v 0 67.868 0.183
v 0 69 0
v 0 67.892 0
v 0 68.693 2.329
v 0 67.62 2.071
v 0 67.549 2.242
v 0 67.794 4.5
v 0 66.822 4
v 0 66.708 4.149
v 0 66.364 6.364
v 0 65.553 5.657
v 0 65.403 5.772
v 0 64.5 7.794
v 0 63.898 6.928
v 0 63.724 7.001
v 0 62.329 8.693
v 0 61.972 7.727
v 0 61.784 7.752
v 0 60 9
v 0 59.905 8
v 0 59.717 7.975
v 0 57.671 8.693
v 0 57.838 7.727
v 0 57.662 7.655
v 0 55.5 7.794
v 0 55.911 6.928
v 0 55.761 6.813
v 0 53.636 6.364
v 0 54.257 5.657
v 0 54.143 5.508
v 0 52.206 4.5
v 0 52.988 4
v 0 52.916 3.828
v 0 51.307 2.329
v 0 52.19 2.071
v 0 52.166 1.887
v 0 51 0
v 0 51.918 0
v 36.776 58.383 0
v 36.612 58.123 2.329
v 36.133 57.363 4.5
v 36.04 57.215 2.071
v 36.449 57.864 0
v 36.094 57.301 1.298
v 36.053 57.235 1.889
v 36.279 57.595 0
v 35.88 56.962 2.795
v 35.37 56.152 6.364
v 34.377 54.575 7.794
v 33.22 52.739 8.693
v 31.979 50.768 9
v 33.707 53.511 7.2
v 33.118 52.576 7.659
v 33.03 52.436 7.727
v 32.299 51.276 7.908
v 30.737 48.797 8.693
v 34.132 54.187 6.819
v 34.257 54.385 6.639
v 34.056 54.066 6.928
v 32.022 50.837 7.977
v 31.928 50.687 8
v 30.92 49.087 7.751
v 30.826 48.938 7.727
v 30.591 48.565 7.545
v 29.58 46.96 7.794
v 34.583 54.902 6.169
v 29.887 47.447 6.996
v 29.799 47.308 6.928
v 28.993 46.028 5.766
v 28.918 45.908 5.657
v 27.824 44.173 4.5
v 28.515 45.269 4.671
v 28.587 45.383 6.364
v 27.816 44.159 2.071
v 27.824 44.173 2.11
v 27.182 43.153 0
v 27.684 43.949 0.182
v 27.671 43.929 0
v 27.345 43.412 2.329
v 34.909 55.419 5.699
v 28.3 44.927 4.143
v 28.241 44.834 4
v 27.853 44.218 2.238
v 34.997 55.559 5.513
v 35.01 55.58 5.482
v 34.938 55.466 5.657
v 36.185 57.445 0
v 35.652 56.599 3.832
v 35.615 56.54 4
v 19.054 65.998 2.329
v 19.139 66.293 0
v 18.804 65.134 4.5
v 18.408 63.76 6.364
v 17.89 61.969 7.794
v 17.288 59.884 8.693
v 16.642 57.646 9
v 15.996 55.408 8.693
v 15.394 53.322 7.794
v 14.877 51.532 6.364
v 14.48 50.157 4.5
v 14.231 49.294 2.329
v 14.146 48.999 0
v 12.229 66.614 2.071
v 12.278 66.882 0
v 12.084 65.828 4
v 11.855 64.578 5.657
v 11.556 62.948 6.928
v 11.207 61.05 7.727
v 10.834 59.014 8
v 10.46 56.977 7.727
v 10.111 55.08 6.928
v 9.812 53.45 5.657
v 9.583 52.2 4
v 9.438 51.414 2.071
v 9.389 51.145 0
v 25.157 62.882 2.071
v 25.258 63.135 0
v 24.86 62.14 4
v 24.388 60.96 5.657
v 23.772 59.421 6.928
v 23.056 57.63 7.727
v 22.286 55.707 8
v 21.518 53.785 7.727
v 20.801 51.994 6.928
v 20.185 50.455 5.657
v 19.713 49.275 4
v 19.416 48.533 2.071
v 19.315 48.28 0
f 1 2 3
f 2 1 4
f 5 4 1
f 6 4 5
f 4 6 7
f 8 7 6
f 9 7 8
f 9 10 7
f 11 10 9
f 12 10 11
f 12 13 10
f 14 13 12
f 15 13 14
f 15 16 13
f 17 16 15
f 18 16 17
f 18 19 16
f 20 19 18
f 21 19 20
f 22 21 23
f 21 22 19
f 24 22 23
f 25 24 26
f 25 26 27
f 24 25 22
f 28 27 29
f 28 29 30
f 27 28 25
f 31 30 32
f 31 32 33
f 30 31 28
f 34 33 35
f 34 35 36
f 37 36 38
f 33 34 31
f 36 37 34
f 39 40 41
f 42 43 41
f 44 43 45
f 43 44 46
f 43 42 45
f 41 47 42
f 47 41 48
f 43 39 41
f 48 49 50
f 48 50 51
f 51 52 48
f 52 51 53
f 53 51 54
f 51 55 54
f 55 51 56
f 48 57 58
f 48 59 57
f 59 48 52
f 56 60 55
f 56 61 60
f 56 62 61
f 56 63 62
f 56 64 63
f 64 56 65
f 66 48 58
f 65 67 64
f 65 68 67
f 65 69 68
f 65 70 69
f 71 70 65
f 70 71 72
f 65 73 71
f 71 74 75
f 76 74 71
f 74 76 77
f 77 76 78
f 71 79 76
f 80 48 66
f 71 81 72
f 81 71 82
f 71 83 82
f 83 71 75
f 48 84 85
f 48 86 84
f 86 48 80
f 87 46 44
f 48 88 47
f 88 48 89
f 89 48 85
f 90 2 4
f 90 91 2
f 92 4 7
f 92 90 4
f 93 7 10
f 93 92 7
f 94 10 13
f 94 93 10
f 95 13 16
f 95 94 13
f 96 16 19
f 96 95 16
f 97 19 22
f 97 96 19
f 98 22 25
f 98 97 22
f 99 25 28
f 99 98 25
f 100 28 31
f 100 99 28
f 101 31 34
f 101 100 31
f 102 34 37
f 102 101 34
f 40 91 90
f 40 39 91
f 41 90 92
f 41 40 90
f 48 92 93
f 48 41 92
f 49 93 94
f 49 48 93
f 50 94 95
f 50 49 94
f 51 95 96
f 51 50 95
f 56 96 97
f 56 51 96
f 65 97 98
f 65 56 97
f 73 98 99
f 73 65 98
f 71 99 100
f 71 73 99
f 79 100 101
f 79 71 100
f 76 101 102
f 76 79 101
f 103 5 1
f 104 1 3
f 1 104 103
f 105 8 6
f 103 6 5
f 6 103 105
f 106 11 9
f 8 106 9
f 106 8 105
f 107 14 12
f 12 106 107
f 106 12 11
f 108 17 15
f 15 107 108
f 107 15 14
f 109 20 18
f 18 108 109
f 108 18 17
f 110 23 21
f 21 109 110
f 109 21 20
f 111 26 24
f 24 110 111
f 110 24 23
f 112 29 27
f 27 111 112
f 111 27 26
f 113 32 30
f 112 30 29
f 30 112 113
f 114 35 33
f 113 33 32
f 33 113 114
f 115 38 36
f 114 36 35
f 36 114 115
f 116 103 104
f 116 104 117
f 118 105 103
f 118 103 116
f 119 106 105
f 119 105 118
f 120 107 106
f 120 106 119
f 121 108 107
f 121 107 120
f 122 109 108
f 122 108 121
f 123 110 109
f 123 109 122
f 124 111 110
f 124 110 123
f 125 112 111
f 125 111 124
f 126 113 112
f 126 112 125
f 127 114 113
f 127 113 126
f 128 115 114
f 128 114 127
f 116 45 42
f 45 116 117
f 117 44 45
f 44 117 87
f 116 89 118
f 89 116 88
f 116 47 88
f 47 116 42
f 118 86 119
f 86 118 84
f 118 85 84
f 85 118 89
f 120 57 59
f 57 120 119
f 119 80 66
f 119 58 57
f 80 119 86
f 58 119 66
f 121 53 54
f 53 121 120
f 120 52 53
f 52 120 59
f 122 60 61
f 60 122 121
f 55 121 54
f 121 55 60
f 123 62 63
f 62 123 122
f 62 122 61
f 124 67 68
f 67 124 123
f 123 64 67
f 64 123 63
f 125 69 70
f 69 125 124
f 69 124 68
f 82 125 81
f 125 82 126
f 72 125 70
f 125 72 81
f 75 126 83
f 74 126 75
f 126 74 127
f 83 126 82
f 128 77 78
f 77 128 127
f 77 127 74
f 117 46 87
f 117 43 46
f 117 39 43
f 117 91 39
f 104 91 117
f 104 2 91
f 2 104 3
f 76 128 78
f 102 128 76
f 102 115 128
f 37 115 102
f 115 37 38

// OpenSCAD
// file: ../build_environments.scad
// build_environments.scad: modules to build level sections
//

module pool(diameter=10.0, wall_height=2.0, step_width=3.0, connections=[])
{
    difference() {
        union() {
        difference() {
            cylinder(h=0.5,r1=diameter+step_width,r2=diameter+step_width,$fn=48);
            translate([0,0,-0.1])
                cylinder(h=0.7,r1=diameter,r2=diameter,$fn=48);
        }
        difference() {
            cylinder(h=wall_height,r1=diameter+step_width+1.0,r2=diameter+step_width+1.0,$fn=48);
            translate([0,0,-0.1])
                cylinder(h=wall_height+0.2,r1=diameter+step_width,r2=diameter+step_width,$fn=48);
        }
        }
    
        for (c = connections)
        {
            rotate([0,90,0]) {
                angle = atan2(c[1],c[0]);
                rotate([-angle,0,0]) {
                    cylinder(h=diameter+5.0,r1=c[2],r2=c[2],$fn=48);
                }
            }
        }
    }
}

module straight(length=10.0, width=2.0, dy1=0.0, dy2=0.0, dz=0.0)
{
    dims = [0, 0, 0, 0, 0, (dz/length)];
    matrix = [
        [ 1, dims[0], dims[1], 0 ],
        [ dims[2], 1, dims[4], 0 ],
        [ dims[5], dims[3], 1, 0 ],
        [ 0, 0, 0, 1 ]
    ];
    multmatrix(matrix)
    difference() {
        translate([dy1,0,0])
        union() {
            rotate([0,90,0]) {
                difference() {
                    cylinder(h=(length-dy1-dy2),r1=width+1.0,r2=width+1.0,$fn=24);
                    translate([0,0,-0.1])
                        cylinder(h=(length-dy1-dy2+0.2),r1=width,r2=width,$fn=24);
                }
                difference() {
                    cylinder(h=1.0,r1=width+2.0,r2=width+2.0,$fn=24);
                    translate([0,0,-0.1])
                        cylinder(h=1.2,r1=width,r2=width,$fn=24);
                }
                translate([0,0,(length-dy1-dy2)-1.0]) {
                    difference() {
                        cylinder(h=1.0,r1=width+2.0,r2=width+2.0,$fn=24);
                        translate([0,0,-0.1])
                            cylinder(h=1.2,r1=width,r2=width,$fn=24);
                    }
                }
            }
        }
        translate([0,0,-(2*width+4.0)/2])
            cube([3*length,3*length,2*width+4.0],center=true);
    }
}

module curve(p0=[0,0], center=[0,0], dir=1, angle=0.0, width=2.0)
{
    radius = sqrt((p0[0]-center[0])*(p0[0]-center[0]) + (p0[1]-center[1])*(p0[1]-center[1]));
    if (dir == 0) {
        difference() {
            rotate([0,0,-90])
            difference() {
                rotate_extrude(angle = angle, convexity = 10, $fn=32)
                    translate([radius, 0, 0])
                        circle(r = width+1.0,$fn=24);
                rotate([0,0,-1.0])
                    rotate_extrude(angle = angle+2.0, convexity = 10, $fn=32)
                        translate([radius, 0, 0])
                            circle(r = width,$fn=24);
            }
            translate([0,0,-(2*width+4.0)/2])
                cube([5*radius,5*radius,2*width+4.0],center=true);
        }
    }
    else {
        difference() {
            rotate([0,0,90])
            difference() {
                rotate_extrude(angle = -angle, convexity = 10, $fn=32)
                    translate([radius, 0, 0])
                        circle(r = width+1.0,$fn=24);
                rotate([0,0,1.0])
                    rotate_extrude(angle = -angle-2.0, convexity = 10, $fn=32)
                        translate([radius, 0, 0])
                            circle(r = width,$fn=24);
            }
            translate([0,0,-(2*width+4.0)/2])
                cube([5*radius,5*radius,2*width+4.0],center=true);
        }
    }

}

// test pool
//pool(diameter=12.0000, wall_height=3.0000, step_width=3.0000, connections=[[0.0000,-26.0000,2.0000], [23.6074,0.0000,2.0000]]);

// test straight, slope
//straight(length=26.0000, width=2.0000, dy1=11.8322, dy2=6.7082, dz=0.0000);
//straight(length=29.1549, width=12.0000, dy1=0.0000, dy2=0.0000, dz=-15.0000);

// test curve
//curve(p0=[23.6074, 0.0000], center=[23.6074, 5.0000], dir=0, angle=60.1011, width=2.0000);
//curve(p0=[33.6426, 12.4219], center=[37.9771, 9.9295], dir=1, angle=120.4627, width=2.0000);
// main file
use <../build_environments.scad>;
curve(p0=[-27.2076, 247.6111], center=[32.5912, 252.5207], dir=1, angle=32.2069, width=8.0000);
